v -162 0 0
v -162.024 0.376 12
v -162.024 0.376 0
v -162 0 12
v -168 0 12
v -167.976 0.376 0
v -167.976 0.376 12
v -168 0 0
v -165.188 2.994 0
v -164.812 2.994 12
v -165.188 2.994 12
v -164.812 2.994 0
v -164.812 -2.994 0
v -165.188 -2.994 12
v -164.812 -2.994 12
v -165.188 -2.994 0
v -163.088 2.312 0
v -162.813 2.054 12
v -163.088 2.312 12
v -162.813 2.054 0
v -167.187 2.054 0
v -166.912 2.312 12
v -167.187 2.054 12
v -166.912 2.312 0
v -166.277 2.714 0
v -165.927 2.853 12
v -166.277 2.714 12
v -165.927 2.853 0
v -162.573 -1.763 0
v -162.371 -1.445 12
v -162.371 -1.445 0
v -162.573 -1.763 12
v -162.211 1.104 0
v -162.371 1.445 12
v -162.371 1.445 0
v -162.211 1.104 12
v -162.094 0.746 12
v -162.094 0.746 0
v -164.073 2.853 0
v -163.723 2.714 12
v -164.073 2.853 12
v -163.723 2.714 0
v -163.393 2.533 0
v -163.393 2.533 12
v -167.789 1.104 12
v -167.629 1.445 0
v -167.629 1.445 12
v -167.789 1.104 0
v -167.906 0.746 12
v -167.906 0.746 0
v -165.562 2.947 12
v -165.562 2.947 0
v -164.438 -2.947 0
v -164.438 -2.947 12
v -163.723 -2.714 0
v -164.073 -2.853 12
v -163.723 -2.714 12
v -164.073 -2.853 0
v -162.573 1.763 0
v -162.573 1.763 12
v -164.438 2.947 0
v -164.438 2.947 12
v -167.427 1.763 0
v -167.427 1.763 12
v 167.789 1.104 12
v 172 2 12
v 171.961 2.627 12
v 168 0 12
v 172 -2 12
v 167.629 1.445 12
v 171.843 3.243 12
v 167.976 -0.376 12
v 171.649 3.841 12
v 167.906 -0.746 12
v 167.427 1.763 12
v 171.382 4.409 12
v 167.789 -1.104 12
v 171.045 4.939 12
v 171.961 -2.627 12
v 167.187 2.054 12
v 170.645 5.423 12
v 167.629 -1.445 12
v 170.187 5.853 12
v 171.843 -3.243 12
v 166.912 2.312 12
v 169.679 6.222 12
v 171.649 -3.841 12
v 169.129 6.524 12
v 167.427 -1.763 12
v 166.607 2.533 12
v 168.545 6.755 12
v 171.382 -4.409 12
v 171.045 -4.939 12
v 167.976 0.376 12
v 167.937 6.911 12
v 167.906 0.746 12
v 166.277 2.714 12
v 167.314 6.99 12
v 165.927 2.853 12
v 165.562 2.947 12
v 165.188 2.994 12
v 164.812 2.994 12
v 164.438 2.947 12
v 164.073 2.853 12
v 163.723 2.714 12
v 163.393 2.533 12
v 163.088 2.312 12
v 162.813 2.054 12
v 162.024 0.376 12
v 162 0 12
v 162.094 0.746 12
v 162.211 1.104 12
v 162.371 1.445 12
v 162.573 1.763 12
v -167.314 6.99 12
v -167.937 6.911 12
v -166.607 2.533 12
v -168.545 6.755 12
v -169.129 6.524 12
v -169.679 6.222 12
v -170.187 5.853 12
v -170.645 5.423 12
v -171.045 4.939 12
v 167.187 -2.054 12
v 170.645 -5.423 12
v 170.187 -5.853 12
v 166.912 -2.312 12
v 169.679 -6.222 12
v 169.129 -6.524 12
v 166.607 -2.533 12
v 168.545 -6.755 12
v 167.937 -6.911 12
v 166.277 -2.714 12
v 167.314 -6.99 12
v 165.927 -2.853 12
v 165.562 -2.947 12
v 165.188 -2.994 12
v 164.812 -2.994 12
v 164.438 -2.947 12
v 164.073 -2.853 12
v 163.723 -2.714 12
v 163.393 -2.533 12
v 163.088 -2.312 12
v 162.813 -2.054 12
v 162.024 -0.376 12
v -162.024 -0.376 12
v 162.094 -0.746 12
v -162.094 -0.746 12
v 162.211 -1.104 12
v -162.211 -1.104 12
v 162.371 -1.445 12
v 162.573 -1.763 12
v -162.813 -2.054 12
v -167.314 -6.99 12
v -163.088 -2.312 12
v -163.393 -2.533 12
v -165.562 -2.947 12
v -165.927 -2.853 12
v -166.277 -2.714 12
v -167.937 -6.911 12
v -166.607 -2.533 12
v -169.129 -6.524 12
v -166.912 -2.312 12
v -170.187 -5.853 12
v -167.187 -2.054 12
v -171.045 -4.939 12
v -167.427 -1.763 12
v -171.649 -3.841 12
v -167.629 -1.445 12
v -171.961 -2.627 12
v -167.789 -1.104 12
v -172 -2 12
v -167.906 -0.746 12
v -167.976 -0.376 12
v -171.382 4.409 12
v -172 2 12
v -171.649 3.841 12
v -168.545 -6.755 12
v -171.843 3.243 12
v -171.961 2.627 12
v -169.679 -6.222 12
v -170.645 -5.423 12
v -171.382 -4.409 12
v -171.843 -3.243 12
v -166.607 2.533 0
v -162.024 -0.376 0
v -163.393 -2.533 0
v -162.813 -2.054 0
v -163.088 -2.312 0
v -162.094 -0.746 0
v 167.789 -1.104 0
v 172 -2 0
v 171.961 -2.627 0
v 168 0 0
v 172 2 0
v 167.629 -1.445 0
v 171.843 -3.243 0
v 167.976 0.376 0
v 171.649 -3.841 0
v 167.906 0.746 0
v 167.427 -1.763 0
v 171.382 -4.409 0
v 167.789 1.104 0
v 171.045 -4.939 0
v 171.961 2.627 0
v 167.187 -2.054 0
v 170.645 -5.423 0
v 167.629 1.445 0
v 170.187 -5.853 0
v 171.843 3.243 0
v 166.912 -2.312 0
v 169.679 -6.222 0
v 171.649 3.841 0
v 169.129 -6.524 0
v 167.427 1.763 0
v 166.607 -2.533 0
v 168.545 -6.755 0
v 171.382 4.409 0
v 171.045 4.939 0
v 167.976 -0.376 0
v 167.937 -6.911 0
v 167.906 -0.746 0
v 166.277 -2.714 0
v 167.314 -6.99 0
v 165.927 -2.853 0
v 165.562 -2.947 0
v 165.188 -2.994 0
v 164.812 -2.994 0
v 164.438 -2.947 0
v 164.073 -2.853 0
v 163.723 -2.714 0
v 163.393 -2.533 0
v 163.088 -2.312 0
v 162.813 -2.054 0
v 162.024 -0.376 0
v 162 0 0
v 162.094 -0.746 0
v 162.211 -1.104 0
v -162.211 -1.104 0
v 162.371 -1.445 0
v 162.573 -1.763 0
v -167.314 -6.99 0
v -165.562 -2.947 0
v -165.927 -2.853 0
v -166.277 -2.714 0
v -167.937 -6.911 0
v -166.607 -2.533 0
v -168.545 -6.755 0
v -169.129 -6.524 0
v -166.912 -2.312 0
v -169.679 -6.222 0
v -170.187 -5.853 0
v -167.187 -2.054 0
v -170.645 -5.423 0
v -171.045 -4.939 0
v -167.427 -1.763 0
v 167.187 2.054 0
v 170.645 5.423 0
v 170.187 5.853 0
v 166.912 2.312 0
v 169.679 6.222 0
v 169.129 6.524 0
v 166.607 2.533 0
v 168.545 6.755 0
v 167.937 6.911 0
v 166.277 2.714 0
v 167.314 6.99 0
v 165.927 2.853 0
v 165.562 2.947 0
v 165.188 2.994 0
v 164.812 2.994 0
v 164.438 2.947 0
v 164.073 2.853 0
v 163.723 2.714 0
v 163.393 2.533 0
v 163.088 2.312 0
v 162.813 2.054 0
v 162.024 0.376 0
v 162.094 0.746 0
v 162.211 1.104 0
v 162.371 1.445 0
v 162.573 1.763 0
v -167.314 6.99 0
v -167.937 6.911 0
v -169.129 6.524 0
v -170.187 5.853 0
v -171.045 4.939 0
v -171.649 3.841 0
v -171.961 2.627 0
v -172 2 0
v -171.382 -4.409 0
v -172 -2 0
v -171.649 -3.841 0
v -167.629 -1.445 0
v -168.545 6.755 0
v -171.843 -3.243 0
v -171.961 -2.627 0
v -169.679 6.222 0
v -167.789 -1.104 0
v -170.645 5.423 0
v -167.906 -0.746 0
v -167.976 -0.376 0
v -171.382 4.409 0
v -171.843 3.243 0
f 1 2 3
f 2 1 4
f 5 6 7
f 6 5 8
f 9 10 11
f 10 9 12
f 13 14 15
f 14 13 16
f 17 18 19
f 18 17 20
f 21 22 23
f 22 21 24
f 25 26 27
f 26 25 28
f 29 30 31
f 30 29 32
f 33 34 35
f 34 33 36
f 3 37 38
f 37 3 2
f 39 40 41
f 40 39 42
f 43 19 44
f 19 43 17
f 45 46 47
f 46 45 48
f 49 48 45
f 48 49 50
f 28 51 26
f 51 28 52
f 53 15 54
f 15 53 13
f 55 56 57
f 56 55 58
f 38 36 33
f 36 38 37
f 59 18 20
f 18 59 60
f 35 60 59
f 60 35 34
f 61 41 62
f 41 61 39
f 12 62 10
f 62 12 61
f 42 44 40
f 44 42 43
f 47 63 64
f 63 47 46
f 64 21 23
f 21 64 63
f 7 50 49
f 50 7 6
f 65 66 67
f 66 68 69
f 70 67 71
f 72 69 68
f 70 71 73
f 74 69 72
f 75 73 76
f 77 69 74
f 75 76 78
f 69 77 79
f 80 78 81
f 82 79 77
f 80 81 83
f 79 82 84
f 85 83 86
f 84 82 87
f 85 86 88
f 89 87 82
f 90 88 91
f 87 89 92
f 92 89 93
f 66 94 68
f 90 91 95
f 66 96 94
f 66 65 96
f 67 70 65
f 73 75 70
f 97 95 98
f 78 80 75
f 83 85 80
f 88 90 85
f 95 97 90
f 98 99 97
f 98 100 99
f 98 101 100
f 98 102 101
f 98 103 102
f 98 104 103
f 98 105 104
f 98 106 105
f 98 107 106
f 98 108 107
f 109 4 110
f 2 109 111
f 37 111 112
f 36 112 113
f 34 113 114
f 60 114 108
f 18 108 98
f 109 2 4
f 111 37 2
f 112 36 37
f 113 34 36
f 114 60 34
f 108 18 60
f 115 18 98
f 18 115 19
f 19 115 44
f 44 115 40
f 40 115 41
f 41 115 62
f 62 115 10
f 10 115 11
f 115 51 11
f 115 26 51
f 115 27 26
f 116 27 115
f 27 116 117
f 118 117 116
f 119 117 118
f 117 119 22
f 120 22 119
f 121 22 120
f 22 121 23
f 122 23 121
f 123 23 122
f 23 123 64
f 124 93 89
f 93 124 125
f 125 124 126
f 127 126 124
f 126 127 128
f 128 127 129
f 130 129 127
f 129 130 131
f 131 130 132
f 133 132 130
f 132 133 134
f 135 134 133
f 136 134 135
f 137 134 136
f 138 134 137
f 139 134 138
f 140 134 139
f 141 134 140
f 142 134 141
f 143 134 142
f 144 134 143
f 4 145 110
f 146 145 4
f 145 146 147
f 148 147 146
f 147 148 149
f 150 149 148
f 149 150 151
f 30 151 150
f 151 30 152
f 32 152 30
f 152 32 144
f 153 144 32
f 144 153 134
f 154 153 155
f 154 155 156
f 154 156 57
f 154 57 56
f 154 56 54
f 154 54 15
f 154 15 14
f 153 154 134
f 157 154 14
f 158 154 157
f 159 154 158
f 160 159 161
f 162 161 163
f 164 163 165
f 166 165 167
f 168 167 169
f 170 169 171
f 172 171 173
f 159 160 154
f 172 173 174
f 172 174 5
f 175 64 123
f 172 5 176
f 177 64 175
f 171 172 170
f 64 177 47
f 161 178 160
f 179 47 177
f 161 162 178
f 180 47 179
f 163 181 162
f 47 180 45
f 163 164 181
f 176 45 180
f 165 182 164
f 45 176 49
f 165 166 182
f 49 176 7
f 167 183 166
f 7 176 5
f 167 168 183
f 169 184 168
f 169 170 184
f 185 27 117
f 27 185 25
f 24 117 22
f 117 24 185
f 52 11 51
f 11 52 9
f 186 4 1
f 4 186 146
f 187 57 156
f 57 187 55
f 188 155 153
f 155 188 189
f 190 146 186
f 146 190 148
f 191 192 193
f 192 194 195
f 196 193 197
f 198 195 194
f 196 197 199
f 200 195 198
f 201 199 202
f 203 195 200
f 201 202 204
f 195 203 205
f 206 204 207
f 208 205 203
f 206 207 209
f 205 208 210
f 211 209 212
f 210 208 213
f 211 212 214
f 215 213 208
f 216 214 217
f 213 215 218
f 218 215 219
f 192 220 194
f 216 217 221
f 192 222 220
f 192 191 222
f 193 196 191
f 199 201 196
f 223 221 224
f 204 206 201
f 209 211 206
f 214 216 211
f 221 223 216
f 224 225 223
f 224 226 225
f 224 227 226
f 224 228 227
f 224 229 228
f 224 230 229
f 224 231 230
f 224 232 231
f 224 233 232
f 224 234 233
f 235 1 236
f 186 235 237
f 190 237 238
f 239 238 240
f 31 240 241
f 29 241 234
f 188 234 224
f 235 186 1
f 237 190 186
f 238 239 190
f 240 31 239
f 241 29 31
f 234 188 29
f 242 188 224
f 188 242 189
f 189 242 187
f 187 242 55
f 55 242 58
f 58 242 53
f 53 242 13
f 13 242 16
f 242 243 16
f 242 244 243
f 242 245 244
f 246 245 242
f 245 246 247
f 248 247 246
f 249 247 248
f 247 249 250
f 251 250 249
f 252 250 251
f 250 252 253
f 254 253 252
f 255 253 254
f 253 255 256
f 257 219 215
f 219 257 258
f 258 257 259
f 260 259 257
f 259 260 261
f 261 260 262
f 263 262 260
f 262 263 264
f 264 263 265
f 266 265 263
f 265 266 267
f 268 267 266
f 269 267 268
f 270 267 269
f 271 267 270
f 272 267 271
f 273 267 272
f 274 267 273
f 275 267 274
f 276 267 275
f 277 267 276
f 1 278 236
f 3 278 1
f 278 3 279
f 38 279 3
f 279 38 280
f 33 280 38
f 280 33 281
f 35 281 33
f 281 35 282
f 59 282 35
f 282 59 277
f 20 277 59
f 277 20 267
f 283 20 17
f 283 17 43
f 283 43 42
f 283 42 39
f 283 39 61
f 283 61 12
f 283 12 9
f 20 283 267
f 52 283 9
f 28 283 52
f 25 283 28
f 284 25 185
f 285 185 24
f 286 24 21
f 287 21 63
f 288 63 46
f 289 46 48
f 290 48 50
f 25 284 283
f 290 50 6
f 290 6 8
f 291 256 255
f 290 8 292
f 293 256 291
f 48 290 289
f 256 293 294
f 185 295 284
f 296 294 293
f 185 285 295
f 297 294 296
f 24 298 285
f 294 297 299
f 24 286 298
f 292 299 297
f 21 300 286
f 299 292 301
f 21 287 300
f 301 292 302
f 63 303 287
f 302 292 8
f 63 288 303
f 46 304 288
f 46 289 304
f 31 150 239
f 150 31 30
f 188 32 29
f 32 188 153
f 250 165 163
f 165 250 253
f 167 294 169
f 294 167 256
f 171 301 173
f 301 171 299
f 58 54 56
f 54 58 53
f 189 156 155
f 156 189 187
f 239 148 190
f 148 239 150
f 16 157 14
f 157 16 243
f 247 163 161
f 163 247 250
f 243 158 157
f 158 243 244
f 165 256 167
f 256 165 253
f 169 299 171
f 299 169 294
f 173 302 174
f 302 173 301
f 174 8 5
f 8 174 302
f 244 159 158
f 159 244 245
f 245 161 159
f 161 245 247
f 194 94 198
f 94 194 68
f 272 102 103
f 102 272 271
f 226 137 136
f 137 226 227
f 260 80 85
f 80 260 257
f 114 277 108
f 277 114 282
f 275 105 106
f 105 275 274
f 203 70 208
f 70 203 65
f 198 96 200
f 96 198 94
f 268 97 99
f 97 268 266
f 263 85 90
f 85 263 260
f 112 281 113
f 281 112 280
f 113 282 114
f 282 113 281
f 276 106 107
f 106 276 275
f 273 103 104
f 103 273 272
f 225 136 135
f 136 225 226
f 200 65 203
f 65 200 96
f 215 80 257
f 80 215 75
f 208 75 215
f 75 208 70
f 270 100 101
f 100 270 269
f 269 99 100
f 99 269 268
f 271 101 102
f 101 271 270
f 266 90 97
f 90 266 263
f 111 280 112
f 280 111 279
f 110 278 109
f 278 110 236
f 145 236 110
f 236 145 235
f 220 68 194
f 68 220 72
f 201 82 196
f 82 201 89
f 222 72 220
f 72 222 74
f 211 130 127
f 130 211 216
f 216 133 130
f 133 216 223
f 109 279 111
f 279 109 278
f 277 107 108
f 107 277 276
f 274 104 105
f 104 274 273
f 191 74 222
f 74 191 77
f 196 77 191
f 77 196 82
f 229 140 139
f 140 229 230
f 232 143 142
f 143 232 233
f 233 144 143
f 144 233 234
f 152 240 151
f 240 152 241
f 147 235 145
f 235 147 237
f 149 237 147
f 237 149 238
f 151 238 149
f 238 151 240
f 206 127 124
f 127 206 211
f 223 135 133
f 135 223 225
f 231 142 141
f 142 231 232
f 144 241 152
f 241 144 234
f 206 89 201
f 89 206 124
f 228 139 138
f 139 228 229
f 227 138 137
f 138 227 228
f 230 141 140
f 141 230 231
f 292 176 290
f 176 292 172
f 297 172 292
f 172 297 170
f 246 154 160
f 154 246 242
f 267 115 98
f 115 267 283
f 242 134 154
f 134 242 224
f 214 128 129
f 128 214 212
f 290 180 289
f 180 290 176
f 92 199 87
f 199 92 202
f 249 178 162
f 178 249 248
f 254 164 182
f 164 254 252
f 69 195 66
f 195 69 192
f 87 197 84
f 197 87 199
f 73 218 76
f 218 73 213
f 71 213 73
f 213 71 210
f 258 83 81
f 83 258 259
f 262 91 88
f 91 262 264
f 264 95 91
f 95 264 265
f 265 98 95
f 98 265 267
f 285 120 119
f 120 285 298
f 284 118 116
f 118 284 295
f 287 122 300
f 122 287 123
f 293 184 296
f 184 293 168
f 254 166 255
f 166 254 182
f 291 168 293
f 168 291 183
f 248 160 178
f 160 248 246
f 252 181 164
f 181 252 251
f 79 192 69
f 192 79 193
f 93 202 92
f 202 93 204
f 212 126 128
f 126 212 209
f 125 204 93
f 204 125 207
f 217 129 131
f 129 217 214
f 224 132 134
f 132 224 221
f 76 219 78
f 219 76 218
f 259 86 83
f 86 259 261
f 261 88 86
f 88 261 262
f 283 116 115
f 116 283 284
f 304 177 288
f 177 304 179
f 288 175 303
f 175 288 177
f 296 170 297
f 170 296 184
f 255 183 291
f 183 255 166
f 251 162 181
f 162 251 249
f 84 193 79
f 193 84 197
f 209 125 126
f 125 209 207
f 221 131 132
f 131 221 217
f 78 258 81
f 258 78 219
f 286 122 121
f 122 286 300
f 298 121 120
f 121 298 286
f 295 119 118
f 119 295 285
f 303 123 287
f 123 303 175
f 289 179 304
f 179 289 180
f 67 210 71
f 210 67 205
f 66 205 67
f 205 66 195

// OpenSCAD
$fn = 50;


difference() {
	union() {
		hull() {
			translate(v = [-167.0000000000, 2.0000000000, 0]) {
				cylinder(h = 12, r = 5);
			}
			translate(v = [167.0000000000, 2.0000000000, 0]) {
				cylinder(h = 12, r = 5);
			}
			translate(v = [-167.0000000000, -2.0000000000, 0]) {
				cylinder(h = 12, r = 5);
			}
			translate(v = [167.0000000000, -2.0000000000, 0]) {
				cylinder(h = 12, r = 5);
			}
		}
	}
	union() {
		translate(v = [-165.0000000000, 0.0000000000, 0]) {
			cylinder(h = 12, r = 3.0000000000);
		}
		translate(v = [165.0000000000, 0.0000000000, 0]) {
			cylinder(h = 12, r = 3.0000000000);
		}
		translate(v = [-165.0000000000, 0.0000000000, 0]) {
			cylinder(h = 12, r = 1.5000000000);
		}
		translate(v = [165.0000000000, 0.0000000000, 0]) {
			cylinder(h = 12, r = 1.5000000000);
		}
		translate(v = [-165.0000000000, 0.0000000000, 0]) {
			cylinder(h = 12, r = 1.5000000000);
		}
		translate(v = [165.0000000000, 0.0000000000, 0]) {
			cylinder(h = 12, r = 1.5000000000);
		}
		translate(v = [-165.0000000000, 0.0000000000, 0]) {
			cylinder(h = 12, r = 1.5000000000);
		}
		translate(v = [165.0000000000, 0.0000000000, 0]) {
			cylinder(h = 12, r = 1.5000000000);
		}
	}
}
